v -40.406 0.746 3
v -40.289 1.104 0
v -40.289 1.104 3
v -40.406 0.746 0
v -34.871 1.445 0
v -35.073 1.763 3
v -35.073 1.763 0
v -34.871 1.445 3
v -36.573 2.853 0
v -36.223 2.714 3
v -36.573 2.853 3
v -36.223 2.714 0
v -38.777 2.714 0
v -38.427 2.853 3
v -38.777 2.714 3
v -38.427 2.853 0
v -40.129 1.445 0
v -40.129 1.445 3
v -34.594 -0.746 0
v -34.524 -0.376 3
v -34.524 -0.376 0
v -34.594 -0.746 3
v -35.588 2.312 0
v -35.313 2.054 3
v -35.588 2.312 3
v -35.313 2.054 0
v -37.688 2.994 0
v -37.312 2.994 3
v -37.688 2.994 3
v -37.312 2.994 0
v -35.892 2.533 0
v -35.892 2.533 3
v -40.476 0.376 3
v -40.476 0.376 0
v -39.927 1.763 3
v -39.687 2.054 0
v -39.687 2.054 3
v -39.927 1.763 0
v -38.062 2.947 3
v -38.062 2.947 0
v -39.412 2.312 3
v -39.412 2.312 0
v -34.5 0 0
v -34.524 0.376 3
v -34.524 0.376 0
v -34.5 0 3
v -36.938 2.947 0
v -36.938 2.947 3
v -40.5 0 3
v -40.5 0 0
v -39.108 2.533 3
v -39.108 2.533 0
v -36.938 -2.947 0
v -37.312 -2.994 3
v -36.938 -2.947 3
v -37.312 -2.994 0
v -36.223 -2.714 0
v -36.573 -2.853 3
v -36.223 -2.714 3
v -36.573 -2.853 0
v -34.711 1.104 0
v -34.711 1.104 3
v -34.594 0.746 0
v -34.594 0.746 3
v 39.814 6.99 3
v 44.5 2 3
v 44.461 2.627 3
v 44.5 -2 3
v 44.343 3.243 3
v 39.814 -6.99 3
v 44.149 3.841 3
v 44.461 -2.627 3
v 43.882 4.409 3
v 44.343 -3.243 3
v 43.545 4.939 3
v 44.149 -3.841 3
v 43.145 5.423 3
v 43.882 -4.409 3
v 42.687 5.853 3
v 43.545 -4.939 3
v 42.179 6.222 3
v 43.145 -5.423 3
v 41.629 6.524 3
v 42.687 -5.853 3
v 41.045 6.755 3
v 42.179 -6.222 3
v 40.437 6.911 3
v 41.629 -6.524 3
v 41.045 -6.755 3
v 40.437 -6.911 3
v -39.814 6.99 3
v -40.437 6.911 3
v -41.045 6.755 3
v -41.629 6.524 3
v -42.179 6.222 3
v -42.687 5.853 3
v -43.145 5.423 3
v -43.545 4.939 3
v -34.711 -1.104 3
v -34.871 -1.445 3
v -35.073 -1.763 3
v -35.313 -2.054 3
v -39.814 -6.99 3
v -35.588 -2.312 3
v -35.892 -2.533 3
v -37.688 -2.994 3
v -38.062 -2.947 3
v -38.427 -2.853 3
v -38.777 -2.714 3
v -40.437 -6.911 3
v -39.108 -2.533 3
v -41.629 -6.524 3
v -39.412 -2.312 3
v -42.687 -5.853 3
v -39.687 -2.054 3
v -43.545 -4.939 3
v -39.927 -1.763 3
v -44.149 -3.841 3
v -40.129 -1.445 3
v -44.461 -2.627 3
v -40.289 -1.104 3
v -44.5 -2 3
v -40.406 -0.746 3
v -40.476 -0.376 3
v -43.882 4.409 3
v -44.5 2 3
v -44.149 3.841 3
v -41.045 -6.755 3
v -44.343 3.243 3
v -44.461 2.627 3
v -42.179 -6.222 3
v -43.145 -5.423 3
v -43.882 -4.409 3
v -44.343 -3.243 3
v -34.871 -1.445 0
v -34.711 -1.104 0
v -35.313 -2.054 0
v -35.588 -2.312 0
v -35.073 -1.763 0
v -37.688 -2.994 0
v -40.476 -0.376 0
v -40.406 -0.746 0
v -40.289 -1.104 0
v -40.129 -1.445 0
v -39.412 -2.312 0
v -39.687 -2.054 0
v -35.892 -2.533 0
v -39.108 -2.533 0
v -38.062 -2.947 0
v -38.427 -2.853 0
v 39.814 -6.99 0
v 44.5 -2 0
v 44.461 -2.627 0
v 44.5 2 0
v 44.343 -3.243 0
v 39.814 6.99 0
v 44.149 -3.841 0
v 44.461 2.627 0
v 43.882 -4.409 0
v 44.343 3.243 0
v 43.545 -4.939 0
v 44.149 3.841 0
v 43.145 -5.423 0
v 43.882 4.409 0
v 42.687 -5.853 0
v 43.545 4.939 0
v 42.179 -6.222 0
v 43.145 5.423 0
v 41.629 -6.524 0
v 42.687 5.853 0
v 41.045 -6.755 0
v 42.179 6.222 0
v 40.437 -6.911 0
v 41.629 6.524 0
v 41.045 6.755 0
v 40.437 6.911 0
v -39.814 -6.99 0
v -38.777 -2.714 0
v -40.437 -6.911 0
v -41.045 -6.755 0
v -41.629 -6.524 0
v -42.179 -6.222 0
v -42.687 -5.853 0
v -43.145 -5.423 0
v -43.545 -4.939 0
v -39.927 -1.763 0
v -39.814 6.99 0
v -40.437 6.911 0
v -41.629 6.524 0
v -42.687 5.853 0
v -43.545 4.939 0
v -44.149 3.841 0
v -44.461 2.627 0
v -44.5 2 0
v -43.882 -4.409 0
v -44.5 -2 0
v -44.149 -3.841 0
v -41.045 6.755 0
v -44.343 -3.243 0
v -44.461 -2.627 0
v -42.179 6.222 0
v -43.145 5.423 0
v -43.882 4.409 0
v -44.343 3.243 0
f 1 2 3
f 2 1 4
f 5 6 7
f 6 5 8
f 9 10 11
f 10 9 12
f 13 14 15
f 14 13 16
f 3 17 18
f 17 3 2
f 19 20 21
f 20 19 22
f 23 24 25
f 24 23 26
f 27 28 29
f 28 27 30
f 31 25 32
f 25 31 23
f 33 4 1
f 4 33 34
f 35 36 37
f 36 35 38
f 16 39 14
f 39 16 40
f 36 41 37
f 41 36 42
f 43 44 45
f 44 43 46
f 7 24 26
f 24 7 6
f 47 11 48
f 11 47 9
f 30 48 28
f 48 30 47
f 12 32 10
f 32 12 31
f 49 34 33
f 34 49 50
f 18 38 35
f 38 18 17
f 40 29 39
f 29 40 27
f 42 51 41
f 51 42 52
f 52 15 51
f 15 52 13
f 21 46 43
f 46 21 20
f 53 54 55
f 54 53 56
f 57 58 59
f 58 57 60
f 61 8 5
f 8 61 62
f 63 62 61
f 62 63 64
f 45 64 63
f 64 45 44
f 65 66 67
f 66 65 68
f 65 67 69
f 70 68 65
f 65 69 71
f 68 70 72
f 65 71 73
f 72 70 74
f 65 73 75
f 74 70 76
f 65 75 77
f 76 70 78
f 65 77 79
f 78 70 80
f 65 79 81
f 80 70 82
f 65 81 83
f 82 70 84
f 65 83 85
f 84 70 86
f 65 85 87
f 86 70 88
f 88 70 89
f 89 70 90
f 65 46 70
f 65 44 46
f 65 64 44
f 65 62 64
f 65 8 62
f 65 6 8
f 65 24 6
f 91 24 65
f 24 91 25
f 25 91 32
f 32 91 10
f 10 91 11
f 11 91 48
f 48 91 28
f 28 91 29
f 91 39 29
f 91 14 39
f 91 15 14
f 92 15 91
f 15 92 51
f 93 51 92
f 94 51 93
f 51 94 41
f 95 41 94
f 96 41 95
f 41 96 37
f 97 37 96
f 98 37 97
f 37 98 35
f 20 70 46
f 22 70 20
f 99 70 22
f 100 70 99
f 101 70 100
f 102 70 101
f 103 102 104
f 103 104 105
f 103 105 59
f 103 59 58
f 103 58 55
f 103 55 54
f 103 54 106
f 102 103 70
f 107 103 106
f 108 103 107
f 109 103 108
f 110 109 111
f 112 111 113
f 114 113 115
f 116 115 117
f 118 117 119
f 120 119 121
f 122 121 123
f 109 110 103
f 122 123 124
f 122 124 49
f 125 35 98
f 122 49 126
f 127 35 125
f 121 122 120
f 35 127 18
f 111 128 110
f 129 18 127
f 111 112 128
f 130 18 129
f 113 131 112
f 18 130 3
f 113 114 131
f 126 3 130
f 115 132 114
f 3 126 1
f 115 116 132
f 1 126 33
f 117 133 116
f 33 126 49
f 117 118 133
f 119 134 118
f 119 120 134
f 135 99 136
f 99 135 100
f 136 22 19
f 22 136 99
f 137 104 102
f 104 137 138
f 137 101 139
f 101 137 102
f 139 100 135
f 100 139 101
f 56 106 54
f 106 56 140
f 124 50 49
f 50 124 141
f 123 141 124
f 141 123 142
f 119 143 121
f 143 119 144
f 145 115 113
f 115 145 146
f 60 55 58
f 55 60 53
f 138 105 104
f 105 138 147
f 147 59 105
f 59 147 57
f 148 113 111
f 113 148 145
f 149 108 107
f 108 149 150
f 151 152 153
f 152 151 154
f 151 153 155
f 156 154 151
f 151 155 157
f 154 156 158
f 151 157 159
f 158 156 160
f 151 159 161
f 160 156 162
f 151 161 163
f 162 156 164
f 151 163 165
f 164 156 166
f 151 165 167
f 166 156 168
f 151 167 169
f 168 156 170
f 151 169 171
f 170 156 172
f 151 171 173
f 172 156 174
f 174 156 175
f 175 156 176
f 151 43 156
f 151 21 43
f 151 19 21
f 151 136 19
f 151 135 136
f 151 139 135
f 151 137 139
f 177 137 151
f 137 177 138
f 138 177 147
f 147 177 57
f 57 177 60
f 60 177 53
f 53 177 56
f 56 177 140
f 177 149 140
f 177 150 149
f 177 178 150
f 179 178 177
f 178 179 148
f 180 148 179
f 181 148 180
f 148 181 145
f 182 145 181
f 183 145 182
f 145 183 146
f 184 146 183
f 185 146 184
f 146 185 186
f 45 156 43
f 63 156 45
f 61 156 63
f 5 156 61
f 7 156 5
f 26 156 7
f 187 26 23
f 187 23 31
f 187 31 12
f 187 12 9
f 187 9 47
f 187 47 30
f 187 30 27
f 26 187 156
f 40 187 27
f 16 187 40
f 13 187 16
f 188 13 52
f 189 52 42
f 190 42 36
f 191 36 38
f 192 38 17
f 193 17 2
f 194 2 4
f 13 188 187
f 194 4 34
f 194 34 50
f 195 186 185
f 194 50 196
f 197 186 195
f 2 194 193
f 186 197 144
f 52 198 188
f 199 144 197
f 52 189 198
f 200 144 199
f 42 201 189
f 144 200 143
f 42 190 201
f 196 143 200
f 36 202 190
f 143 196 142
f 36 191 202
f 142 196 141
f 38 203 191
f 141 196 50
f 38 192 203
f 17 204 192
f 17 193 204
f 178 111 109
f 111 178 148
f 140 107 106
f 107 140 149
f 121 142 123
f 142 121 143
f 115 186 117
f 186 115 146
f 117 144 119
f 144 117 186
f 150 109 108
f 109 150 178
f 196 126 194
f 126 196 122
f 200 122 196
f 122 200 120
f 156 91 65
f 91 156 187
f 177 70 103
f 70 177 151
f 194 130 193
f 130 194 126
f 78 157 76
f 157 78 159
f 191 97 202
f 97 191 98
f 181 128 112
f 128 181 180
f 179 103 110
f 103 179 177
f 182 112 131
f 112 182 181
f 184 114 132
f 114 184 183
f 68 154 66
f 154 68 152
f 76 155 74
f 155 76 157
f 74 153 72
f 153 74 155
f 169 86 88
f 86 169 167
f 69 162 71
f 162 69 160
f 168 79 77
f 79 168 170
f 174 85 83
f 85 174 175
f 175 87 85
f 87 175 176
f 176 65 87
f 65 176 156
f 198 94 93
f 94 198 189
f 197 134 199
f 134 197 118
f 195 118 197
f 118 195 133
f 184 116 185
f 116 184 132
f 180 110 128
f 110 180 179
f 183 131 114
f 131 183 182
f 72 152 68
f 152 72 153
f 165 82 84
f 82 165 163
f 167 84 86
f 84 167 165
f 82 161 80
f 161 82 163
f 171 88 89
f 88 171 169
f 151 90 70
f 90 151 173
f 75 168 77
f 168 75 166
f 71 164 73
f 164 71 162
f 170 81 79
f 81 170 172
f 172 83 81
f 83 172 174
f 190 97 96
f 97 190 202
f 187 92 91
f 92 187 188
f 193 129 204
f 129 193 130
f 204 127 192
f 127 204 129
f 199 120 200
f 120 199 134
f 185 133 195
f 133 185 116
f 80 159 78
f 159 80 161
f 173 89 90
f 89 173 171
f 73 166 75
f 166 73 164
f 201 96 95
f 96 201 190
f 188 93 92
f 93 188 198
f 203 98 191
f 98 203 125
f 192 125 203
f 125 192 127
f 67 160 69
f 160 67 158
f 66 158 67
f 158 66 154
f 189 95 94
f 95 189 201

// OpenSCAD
$fn = 50;


difference() {
	union() {
		hull() {
			translate(v = [-39.5000000000, 2.0000000000, 0]) {
				cylinder(h = 3, r = 5);
			}
			translate(v = [39.5000000000, 2.0000000000, 0]) {
				cylinder(h = 3, r = 5);
			}
			translate(v = [-39.5000000000, -2.0000000000, 0]) {
				cylinder(h = 3, r = 5);
			}
			translate(v = [39.5000000000, -2.0000000000, 0]) {
				cylinder(h = 3, r = 5);
			}
		}
	}
	union() {
		translate(v = [-37.5000000000, 0.0000000000, 0]) {
			cylinder(h = 3, r = 3.0000000000);
		}
		translate(v = [-37.5000000000, 0.0000000000, 0]) {
			cylinder(h = 3, r = 1.5000000000);
		}
		translate(v = [-37.5000000000, 0.0000000000, 0]) {
			cylinder(h = 3, r = 1.5000000000);
		}
		translate(v = [-37.5000000000, 0.0000000000, 0]) {
			cylinder(h = 3, r = 1.5000000000);
		}
	}
}
